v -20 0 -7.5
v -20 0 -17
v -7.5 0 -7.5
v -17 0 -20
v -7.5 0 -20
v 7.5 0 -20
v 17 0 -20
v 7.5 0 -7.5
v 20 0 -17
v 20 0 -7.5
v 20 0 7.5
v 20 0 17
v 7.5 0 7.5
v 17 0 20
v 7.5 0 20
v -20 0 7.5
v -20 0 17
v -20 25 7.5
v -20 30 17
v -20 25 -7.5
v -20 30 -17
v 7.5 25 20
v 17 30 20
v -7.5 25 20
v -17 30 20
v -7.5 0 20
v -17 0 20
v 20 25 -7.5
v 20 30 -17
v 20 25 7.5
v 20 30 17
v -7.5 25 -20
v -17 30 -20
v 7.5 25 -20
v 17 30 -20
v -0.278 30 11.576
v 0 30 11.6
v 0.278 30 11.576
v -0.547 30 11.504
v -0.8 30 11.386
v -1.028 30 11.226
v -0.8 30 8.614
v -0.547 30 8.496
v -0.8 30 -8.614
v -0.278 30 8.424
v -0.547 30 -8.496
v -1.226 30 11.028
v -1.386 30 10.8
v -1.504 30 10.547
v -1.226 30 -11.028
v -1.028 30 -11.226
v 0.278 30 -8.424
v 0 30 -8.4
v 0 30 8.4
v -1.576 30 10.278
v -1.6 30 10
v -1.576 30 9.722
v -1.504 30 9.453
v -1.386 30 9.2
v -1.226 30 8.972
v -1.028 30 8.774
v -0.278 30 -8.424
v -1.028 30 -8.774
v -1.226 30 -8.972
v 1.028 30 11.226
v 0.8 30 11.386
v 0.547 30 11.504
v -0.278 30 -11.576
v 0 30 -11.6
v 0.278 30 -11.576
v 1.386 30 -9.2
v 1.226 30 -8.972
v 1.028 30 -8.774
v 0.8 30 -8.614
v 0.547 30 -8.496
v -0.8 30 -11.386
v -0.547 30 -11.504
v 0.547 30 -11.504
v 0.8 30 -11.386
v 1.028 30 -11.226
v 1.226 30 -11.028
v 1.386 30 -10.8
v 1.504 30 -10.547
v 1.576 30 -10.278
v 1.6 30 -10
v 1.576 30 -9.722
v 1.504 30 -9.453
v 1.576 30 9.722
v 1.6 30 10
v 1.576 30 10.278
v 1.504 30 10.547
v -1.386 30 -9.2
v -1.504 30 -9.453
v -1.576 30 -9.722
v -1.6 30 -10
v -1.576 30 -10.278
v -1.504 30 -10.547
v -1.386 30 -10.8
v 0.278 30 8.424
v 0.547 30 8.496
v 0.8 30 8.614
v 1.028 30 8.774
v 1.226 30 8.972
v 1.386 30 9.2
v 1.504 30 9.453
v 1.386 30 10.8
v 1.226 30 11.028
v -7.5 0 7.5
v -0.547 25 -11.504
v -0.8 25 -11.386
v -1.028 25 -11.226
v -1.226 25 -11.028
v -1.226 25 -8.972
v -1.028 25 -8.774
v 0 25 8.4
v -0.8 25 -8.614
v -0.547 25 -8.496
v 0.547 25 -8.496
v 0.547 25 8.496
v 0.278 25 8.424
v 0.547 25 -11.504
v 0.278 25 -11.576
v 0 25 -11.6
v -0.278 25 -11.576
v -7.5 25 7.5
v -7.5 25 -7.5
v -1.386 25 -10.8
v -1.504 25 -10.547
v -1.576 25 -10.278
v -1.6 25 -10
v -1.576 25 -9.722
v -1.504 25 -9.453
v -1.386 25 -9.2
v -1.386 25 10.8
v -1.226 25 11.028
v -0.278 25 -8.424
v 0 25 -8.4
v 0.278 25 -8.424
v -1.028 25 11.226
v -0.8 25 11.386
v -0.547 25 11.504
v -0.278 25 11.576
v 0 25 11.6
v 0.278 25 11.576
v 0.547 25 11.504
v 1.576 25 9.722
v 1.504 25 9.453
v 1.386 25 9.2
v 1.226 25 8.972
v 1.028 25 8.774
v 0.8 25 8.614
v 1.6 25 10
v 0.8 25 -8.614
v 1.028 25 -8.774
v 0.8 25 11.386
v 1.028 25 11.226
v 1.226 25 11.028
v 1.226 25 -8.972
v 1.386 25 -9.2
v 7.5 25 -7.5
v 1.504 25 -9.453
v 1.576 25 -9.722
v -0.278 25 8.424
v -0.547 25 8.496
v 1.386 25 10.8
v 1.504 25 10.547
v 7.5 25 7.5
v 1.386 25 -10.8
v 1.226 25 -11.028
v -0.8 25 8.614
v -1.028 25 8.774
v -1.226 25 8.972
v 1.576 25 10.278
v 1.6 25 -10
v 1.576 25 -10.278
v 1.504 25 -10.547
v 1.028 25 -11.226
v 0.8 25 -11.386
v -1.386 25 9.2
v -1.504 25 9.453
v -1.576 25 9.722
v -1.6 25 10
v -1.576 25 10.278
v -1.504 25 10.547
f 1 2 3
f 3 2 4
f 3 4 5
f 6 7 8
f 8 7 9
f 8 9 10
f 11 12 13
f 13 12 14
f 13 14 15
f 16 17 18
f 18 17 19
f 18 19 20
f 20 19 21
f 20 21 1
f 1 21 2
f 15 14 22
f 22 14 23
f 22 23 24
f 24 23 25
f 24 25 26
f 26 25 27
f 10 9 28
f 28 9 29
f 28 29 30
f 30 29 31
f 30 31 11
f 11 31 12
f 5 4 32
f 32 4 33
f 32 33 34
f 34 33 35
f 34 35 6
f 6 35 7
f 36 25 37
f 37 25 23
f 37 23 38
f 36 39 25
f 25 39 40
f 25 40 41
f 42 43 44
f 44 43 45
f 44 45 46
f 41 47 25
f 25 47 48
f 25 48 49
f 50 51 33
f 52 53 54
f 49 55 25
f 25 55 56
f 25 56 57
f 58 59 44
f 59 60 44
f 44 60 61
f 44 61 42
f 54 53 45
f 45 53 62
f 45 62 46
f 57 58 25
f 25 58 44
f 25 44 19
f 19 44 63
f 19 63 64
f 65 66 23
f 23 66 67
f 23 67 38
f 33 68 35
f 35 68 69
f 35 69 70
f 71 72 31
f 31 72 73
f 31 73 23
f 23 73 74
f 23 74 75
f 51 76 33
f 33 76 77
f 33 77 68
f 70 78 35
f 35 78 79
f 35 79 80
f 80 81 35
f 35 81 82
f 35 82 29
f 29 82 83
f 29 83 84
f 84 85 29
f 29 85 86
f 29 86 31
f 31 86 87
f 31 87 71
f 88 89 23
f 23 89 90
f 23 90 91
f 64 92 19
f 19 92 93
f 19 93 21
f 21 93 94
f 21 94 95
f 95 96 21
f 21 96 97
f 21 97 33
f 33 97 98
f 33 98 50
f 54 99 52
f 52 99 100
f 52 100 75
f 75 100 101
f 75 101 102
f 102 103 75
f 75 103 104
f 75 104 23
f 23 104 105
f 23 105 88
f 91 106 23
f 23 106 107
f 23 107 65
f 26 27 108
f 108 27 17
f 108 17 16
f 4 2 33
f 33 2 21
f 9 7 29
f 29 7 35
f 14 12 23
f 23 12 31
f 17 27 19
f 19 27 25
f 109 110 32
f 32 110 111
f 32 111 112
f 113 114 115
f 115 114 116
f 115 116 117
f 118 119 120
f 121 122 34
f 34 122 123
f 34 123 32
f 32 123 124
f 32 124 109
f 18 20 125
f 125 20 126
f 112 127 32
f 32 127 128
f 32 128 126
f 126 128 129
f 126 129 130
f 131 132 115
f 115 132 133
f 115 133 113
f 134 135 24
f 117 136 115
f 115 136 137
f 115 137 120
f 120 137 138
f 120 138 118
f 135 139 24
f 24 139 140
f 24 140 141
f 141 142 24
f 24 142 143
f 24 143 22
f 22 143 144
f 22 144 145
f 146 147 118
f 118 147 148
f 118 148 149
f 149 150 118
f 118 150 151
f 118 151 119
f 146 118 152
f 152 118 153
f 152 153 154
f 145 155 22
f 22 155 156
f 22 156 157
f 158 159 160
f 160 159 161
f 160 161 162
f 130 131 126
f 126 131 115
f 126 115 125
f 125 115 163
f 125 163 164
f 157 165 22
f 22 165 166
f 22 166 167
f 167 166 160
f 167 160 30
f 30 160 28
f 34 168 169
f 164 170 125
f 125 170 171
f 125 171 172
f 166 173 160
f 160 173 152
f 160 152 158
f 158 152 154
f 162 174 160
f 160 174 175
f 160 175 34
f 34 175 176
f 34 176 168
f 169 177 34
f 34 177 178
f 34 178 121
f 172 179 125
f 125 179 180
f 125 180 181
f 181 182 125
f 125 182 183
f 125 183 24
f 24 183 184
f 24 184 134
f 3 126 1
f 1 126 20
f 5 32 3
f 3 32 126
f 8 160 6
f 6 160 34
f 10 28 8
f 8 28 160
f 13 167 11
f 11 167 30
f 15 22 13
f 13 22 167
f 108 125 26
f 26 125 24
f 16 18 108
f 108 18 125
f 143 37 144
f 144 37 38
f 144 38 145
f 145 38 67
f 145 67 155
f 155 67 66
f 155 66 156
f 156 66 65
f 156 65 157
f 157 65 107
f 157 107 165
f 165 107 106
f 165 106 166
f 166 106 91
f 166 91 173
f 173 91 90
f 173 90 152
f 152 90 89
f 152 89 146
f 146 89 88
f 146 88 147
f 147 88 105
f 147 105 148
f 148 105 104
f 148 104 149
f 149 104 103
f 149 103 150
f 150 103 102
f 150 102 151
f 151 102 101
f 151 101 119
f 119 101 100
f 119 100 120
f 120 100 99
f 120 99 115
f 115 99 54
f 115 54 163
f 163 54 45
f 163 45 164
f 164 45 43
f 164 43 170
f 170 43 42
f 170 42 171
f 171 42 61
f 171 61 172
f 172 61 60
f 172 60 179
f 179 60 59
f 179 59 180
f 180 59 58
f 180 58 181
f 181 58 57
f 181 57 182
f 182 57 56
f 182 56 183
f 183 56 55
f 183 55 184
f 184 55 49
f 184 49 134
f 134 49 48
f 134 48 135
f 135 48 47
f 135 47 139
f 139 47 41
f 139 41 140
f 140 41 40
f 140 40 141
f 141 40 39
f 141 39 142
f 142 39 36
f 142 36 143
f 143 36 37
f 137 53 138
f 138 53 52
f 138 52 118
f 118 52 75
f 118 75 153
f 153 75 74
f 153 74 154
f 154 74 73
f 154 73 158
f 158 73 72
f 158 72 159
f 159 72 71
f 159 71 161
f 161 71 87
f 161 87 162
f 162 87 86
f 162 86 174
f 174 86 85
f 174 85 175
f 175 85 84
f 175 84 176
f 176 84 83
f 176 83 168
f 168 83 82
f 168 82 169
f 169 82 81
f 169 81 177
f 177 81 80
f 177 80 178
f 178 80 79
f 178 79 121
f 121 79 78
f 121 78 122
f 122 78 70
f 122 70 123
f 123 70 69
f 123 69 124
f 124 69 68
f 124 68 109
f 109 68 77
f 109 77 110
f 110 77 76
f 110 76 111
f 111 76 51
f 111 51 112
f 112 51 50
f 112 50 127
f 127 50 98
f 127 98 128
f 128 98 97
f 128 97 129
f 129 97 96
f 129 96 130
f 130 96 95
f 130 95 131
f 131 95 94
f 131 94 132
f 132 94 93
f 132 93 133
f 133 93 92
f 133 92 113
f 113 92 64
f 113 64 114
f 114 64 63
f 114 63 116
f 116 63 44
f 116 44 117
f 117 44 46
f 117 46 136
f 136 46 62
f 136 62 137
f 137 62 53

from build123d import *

# Parameters (mm, degrees)
SKIZZE1_W                       = 40
SKIZZE1_H                       = 40
AUFSATZ_LINEAR_AUSTRAGEN1_DEPTH = 30
FASE1_SIZE                      = 3
SCHNITT_LINEAR_AUSTRAGEN1_DEPTH = 25
DURCHGANGSLOCH_F_R_M31_D        = 3.2


with BuildPart() as part:
    # Skizze1 → Aufsatz-Linear austragen1 (new body)
    with BuildSketch(Plane(origin=(0, 0, 0), x_dir=(1, 0, 0), z_dir=(0, 1, 0))):
        Rectangle(SKIZZE1_W, SKIZZE1_H)
    extrude(amount=AUFSATZ_LINEAR_AUSTRAGEN1_DEPTH)

    # Fase1
    fase1_edges = [part.edges().sort_by_distance(p)[0] for p in [
        (-20, 15, -20),
        (20, 15, -20),
        (20, 15, 20),
        (-20, 15, 20),
    ]]
    chamfer(fase1_edges, length=FASE1_SIZE)

    # Skizze2 → Schnitt-Linear austragen1 (cut)
    with BuildSketch(Plane.XZ):
        Polygon((-20, 7.5), (-7.5, 7.5), (-7.5, 20), (7.5, 20), (7.5, 7.5), (20, 7.5), (20, -7.5), (7.5, -7.5), (7.5, -20), (-7.5, -20), (-7.5, -7.5), (-20, -7.5), align=None)
    extrude(amount=-SCHNITT_LINEAR_AUSTRAGEN1_DEPTH, mode=Mode.SUBTRACT)

    # Durchgangsloch für M31 (through all)
    with Locations(Plane(origin=(0, 30, 0), x_dir=(1, 0, 0), z_dir=(0, 1, 0))):
        with Locations((0, 10), (0, -10)):
            Hole(DURCHGANGSLOCH_F_R_M31_D / 2)


solid = part.part
